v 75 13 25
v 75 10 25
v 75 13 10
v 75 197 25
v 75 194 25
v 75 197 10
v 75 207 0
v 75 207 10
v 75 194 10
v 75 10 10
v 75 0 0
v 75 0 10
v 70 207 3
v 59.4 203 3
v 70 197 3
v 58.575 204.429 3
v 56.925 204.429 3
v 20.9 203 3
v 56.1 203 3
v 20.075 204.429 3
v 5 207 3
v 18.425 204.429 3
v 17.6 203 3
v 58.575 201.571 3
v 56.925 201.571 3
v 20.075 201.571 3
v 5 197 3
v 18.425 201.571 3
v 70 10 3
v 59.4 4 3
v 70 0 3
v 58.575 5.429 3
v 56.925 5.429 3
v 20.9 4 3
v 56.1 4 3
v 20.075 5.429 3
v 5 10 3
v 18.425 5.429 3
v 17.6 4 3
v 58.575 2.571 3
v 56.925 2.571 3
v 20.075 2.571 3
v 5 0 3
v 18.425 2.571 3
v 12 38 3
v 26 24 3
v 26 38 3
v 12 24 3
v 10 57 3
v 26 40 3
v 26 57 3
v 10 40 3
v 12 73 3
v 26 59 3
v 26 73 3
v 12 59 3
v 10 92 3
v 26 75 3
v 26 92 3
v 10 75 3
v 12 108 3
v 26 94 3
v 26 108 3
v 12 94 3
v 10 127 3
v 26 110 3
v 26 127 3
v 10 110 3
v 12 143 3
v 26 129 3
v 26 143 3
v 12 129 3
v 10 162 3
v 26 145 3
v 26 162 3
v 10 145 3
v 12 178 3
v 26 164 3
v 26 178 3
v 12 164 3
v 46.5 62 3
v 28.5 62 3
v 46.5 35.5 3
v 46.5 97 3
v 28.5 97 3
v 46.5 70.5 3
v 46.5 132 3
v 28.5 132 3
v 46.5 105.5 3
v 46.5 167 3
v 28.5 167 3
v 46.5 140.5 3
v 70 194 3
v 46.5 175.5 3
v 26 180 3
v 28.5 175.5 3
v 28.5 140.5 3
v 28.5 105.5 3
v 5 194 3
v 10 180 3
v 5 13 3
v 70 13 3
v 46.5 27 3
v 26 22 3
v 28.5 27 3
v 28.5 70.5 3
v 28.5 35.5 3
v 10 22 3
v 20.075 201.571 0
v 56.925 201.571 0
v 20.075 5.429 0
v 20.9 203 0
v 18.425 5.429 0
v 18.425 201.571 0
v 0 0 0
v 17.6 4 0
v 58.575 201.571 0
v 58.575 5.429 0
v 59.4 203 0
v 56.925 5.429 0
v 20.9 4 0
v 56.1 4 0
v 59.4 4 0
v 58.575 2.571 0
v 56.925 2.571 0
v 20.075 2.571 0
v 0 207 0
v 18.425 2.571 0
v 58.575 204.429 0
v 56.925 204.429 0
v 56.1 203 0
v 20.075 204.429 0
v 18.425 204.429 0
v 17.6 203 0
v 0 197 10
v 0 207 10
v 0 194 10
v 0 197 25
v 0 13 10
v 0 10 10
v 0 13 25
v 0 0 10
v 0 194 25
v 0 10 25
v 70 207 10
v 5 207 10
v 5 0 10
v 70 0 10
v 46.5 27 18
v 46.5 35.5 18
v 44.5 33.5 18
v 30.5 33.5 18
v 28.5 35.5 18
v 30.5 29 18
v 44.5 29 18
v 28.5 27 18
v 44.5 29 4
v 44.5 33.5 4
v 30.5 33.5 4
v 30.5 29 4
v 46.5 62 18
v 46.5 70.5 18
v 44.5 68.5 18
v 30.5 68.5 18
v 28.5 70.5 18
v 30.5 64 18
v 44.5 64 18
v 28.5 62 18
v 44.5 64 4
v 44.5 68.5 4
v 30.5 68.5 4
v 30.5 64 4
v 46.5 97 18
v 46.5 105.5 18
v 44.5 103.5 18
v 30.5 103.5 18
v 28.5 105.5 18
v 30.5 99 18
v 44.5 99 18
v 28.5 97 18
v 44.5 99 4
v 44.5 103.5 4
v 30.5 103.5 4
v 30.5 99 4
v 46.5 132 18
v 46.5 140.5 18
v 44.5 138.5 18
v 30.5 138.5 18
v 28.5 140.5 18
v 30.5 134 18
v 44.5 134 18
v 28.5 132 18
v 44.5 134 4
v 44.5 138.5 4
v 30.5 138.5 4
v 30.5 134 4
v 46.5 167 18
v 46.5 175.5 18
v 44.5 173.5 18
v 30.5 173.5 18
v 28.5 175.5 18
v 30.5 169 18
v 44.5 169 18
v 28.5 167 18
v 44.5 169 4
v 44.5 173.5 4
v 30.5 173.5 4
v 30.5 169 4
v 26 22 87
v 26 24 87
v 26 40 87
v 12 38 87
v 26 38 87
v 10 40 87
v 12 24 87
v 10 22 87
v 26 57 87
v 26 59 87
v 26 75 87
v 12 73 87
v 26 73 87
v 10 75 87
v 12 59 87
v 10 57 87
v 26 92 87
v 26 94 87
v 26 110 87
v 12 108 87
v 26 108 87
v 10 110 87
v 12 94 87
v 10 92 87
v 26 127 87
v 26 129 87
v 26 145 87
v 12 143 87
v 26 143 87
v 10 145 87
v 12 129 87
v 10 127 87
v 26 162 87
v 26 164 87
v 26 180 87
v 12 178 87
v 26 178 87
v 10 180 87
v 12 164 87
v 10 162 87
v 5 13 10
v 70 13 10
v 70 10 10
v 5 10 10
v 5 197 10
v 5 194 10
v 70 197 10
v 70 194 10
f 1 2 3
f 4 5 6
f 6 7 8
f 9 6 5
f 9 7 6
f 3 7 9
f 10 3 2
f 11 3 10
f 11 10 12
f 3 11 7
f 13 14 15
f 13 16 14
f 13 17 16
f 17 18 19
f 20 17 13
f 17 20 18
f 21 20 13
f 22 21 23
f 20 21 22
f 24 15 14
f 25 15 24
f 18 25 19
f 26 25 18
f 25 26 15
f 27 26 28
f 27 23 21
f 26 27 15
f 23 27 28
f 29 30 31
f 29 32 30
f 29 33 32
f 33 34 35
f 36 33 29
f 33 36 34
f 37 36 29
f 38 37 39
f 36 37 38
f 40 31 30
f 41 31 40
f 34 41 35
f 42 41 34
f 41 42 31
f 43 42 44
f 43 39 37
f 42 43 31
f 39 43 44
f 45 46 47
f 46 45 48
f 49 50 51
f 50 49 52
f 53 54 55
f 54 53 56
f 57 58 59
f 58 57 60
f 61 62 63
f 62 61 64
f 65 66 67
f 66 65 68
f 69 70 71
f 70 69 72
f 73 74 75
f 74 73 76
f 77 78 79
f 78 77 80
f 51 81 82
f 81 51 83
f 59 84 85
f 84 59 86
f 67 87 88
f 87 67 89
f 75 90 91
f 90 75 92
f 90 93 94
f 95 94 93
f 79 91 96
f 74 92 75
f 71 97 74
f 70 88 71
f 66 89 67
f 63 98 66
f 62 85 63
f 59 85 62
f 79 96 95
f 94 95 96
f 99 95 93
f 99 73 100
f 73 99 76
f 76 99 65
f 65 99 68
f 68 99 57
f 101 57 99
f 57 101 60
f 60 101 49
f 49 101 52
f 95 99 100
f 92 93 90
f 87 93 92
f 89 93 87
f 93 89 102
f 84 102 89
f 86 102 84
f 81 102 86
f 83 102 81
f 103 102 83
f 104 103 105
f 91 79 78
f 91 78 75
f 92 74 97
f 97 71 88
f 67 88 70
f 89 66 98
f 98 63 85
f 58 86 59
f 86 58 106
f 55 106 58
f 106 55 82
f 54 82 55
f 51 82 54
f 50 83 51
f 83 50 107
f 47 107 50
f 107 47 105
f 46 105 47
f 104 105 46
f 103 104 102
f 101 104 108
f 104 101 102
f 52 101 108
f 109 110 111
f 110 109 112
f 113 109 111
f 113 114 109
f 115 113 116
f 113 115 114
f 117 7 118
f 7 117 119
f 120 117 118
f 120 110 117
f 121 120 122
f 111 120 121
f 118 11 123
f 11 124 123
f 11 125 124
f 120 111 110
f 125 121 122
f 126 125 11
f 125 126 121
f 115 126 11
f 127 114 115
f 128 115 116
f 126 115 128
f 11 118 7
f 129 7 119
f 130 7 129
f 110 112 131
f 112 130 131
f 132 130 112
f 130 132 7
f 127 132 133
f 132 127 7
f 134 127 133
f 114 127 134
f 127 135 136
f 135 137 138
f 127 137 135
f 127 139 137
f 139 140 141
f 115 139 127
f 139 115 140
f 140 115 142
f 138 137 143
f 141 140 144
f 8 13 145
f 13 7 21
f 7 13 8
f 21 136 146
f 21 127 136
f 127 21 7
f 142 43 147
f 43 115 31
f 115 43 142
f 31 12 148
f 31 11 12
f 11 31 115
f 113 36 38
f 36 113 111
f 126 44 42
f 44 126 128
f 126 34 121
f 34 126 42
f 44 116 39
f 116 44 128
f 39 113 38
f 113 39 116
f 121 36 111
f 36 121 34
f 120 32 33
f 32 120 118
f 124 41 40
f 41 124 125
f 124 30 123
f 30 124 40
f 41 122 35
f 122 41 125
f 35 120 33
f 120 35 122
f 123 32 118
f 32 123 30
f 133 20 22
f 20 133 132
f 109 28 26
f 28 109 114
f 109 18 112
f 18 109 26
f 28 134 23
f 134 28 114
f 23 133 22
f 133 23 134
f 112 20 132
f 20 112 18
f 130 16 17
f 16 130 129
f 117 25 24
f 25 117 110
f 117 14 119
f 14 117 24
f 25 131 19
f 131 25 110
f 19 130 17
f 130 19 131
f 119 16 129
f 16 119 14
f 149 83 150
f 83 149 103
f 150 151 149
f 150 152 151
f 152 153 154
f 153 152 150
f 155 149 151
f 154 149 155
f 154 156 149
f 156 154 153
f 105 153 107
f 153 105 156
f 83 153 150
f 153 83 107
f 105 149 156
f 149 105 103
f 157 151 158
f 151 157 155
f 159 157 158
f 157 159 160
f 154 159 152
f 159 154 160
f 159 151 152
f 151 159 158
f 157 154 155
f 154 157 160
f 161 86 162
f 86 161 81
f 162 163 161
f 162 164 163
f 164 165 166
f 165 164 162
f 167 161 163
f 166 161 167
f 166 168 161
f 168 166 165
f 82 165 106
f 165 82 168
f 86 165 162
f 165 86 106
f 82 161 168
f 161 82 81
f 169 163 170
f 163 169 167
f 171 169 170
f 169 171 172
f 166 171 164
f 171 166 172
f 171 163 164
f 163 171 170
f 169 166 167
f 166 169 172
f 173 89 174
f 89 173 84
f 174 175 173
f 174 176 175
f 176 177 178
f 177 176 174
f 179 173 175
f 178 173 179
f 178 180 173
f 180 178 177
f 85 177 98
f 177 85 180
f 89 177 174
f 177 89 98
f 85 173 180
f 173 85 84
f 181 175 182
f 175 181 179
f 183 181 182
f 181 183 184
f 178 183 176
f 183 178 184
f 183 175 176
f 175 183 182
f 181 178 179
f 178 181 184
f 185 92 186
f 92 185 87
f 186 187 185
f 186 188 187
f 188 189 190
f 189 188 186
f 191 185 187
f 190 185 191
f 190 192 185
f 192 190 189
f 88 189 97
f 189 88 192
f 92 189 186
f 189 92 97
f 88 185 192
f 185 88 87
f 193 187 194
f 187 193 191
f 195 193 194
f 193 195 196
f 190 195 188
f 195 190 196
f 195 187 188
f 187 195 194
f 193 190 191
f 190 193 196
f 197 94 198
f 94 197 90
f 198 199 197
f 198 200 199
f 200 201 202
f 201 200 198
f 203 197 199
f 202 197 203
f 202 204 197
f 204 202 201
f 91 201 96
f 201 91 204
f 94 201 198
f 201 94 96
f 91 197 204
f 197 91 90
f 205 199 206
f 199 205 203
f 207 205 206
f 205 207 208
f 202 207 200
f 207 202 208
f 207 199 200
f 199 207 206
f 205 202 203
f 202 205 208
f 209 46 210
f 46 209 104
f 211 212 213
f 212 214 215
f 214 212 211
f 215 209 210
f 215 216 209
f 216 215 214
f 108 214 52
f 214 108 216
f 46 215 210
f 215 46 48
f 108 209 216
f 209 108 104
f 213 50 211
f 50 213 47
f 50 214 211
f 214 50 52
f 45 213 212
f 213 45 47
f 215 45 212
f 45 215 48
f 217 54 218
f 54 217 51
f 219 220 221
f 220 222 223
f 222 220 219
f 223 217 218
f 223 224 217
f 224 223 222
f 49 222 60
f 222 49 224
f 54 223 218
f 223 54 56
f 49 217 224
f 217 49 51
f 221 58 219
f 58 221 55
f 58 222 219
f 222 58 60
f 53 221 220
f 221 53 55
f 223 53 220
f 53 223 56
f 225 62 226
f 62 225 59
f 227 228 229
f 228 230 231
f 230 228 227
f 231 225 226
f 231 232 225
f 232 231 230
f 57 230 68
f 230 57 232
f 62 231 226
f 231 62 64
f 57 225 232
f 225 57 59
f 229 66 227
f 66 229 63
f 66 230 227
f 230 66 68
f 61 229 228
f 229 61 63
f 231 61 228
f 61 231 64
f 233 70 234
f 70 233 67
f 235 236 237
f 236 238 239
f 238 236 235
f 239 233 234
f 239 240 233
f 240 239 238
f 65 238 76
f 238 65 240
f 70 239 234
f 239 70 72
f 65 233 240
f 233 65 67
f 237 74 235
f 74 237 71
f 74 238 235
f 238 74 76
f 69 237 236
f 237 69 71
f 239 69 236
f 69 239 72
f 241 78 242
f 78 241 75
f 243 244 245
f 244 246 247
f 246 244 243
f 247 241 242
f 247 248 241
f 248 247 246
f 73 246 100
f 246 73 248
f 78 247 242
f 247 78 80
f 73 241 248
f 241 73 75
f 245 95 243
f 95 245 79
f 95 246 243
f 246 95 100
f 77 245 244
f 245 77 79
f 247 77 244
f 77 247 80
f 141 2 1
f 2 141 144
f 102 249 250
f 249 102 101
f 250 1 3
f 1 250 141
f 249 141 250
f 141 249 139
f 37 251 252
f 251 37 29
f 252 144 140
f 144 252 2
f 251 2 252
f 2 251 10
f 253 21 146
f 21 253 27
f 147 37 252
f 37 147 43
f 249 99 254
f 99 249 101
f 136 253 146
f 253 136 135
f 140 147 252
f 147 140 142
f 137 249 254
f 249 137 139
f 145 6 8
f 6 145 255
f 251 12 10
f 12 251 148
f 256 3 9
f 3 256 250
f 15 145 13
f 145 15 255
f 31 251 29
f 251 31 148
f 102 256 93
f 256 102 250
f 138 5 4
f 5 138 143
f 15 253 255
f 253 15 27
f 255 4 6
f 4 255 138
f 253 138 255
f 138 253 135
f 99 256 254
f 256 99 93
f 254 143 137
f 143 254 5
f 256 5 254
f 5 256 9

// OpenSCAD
module open_top_box(size, wall=2, lid=false){
    // Form the dimensions of the outer box
    x2 = size[0] + wall*2;
    y2 = size[1] + wall*2;
    z2 = size[2] + wall*2;

    echo("Not building with lid");
    zWall = size[2] + wall*2;
    lid_offset = [wall, wall, wall];

    difference(){
        cube([x2,y2,z2]);
        translate(lid_offset){
            cube([size.x, size.y, zWall]);
        }       
    }
}

hdmi_x = 14;
hdmi_y = 4.5;
hdmi_z = 12;

// Want at lest 2 times the width to support
base_x = 75;

// Want at least 10mm space between them
base_y = hdmi_y*50;
base_z = 2;

offset_x = (base_x - hdmi_x)/2;
center_x = (base_x / 2) - ((hdmi_x + 4) / 2);
z_offset = 2;

/* Prototype base 
//cube([base_x, 40, .5]);

translate([0,14,0]){
    translate([center_x,2,0]){
        open_top_box(size=[hdmi_x, hdmi_y, 10]);
    }
}
/* End prototype base */


difference(){

// Define the base
cube([base_x, 207,3]);

    // Top Stabalizer screw hold
    translate([19.25,4,3]){
        rotate([180,0,0]){
            cylinder(4, 1.65, 1.65);
        }
    }


    // Top Stabalizer screw hold
    translate([57.75,4,3]){
        rotate([180,0,0]){
            cylinder(4, 1.65, 1.65);
        }
    }


    // Bottom Stabalizer screw hold
    translate([19.25,203,3]){
        rotate([180,0,0]){
            cylinder(4, 1.65, 1.65);
        }
    }


    // Bottom Stabalizer screw hold
    translate([57.75,203,3]){
        rotate([180,0,0]){
            cylinder(4, 1.65, 1.65);
        }
    }

}

slot_height = 85;
space_between = 35;

mount_y_offset = 25;
y_offset = mount_y_offset-14;

// top Stabalizer
translate([0, 10, 0]){
    cube([75,3,25]);
}


translate([0,mount_y_offset,z_offset]){
    // Mini-PC mount 1
    translate([center_x,2,0]){
        open_top_box(size=[hdmi_x, hdmi_y, hdmi_z], wall=2, lid=false);
    }
    // Mini-PC mount 2
    translate([center_x,2+space_between,0]){
        open_top_box(size=[hdmi_x, hdmi_y, hdmi_z], wall=2, lid=false);
    }
    // Mini-PC mount 3
    translate([center_x,2+space_between*2,0]){
        open_top_box(size=[hdmi_x, hdmi_y, hdmi_z], wall=2, lid=false);
    }

    // Mini-PC mount 4
    translate([center_x,2+space_between*3,0]){
        open_top_box(size=[hdmi_x, hdmi_y, hdmi_z], wall=2, lid=false);
    }

    // Mini-PC mount 5
    translate([center_x,2+space_between*4,0]){
        open_top_box(size=[hdmi_x, hdmi_y, hdmi_z], wall=2, lid=false);
    }
}

// 1st Mount
translate([5,y_offset,z_offset]){
    translate([5,11,0]){
        cube([16,2,slot_height]);
    }
    translate([5,27,0]){
        cube([16,2,slot_height]);
    }
    translate([5,11,0]){
        cube([2,18,slot_height]);
    }
}

// 2nd Mount
translate([5,y_offset+space_between,z_offset]){
    translate([5,11,0]){
        cube([16,2,slot_height]);
    }
    translate([5,27,0]){
        cube([16,2,slot_height]);
    }
    translate([5,11,0]){
        cube([2,18,slot_height]);
    }
}


// 3rd Mount
translate([5,y_offset+space_between*2,z_offset]){
    translate([5,11,0]){
        cube([16,2,slot_height]);
    }
    translate([5,27,0]){
        cube([16,2,slot_height]);
    }
    translate([5,11,0]){
        cube([2,18,slot_height]);
    }
}


// 4th Mount
translate([5,y_offset+space_between*3,z_offset]){
    translate([5,11,0]){
        cube([16,2,slot_height]);
    }
    translate([5,27,0]){
        cube([16,2,slot_height]);
    }
    translate([5,11,0]){
        cube([2,18,slot_height]);
    }
}


// 5th Mount
translate([5,y_offset+space_between*4,z_offset]){
    translate([5,11,0]){
        cube([16,2,slot_height]);
    }
    translate([5,27,0]){
        cube([16,2,slot_height]);
    }
    translate([5,11,0]){
        cube([2,18,slot_height]);
    }
}

// Rails for side-wall mount
cube([5,207,10]);
translate([70,0,0]){
    cube([5,207,10]);
}

// Bottom Stabalizer
translate([0, 194, 0]){
    cube([75,3,25]);
}
